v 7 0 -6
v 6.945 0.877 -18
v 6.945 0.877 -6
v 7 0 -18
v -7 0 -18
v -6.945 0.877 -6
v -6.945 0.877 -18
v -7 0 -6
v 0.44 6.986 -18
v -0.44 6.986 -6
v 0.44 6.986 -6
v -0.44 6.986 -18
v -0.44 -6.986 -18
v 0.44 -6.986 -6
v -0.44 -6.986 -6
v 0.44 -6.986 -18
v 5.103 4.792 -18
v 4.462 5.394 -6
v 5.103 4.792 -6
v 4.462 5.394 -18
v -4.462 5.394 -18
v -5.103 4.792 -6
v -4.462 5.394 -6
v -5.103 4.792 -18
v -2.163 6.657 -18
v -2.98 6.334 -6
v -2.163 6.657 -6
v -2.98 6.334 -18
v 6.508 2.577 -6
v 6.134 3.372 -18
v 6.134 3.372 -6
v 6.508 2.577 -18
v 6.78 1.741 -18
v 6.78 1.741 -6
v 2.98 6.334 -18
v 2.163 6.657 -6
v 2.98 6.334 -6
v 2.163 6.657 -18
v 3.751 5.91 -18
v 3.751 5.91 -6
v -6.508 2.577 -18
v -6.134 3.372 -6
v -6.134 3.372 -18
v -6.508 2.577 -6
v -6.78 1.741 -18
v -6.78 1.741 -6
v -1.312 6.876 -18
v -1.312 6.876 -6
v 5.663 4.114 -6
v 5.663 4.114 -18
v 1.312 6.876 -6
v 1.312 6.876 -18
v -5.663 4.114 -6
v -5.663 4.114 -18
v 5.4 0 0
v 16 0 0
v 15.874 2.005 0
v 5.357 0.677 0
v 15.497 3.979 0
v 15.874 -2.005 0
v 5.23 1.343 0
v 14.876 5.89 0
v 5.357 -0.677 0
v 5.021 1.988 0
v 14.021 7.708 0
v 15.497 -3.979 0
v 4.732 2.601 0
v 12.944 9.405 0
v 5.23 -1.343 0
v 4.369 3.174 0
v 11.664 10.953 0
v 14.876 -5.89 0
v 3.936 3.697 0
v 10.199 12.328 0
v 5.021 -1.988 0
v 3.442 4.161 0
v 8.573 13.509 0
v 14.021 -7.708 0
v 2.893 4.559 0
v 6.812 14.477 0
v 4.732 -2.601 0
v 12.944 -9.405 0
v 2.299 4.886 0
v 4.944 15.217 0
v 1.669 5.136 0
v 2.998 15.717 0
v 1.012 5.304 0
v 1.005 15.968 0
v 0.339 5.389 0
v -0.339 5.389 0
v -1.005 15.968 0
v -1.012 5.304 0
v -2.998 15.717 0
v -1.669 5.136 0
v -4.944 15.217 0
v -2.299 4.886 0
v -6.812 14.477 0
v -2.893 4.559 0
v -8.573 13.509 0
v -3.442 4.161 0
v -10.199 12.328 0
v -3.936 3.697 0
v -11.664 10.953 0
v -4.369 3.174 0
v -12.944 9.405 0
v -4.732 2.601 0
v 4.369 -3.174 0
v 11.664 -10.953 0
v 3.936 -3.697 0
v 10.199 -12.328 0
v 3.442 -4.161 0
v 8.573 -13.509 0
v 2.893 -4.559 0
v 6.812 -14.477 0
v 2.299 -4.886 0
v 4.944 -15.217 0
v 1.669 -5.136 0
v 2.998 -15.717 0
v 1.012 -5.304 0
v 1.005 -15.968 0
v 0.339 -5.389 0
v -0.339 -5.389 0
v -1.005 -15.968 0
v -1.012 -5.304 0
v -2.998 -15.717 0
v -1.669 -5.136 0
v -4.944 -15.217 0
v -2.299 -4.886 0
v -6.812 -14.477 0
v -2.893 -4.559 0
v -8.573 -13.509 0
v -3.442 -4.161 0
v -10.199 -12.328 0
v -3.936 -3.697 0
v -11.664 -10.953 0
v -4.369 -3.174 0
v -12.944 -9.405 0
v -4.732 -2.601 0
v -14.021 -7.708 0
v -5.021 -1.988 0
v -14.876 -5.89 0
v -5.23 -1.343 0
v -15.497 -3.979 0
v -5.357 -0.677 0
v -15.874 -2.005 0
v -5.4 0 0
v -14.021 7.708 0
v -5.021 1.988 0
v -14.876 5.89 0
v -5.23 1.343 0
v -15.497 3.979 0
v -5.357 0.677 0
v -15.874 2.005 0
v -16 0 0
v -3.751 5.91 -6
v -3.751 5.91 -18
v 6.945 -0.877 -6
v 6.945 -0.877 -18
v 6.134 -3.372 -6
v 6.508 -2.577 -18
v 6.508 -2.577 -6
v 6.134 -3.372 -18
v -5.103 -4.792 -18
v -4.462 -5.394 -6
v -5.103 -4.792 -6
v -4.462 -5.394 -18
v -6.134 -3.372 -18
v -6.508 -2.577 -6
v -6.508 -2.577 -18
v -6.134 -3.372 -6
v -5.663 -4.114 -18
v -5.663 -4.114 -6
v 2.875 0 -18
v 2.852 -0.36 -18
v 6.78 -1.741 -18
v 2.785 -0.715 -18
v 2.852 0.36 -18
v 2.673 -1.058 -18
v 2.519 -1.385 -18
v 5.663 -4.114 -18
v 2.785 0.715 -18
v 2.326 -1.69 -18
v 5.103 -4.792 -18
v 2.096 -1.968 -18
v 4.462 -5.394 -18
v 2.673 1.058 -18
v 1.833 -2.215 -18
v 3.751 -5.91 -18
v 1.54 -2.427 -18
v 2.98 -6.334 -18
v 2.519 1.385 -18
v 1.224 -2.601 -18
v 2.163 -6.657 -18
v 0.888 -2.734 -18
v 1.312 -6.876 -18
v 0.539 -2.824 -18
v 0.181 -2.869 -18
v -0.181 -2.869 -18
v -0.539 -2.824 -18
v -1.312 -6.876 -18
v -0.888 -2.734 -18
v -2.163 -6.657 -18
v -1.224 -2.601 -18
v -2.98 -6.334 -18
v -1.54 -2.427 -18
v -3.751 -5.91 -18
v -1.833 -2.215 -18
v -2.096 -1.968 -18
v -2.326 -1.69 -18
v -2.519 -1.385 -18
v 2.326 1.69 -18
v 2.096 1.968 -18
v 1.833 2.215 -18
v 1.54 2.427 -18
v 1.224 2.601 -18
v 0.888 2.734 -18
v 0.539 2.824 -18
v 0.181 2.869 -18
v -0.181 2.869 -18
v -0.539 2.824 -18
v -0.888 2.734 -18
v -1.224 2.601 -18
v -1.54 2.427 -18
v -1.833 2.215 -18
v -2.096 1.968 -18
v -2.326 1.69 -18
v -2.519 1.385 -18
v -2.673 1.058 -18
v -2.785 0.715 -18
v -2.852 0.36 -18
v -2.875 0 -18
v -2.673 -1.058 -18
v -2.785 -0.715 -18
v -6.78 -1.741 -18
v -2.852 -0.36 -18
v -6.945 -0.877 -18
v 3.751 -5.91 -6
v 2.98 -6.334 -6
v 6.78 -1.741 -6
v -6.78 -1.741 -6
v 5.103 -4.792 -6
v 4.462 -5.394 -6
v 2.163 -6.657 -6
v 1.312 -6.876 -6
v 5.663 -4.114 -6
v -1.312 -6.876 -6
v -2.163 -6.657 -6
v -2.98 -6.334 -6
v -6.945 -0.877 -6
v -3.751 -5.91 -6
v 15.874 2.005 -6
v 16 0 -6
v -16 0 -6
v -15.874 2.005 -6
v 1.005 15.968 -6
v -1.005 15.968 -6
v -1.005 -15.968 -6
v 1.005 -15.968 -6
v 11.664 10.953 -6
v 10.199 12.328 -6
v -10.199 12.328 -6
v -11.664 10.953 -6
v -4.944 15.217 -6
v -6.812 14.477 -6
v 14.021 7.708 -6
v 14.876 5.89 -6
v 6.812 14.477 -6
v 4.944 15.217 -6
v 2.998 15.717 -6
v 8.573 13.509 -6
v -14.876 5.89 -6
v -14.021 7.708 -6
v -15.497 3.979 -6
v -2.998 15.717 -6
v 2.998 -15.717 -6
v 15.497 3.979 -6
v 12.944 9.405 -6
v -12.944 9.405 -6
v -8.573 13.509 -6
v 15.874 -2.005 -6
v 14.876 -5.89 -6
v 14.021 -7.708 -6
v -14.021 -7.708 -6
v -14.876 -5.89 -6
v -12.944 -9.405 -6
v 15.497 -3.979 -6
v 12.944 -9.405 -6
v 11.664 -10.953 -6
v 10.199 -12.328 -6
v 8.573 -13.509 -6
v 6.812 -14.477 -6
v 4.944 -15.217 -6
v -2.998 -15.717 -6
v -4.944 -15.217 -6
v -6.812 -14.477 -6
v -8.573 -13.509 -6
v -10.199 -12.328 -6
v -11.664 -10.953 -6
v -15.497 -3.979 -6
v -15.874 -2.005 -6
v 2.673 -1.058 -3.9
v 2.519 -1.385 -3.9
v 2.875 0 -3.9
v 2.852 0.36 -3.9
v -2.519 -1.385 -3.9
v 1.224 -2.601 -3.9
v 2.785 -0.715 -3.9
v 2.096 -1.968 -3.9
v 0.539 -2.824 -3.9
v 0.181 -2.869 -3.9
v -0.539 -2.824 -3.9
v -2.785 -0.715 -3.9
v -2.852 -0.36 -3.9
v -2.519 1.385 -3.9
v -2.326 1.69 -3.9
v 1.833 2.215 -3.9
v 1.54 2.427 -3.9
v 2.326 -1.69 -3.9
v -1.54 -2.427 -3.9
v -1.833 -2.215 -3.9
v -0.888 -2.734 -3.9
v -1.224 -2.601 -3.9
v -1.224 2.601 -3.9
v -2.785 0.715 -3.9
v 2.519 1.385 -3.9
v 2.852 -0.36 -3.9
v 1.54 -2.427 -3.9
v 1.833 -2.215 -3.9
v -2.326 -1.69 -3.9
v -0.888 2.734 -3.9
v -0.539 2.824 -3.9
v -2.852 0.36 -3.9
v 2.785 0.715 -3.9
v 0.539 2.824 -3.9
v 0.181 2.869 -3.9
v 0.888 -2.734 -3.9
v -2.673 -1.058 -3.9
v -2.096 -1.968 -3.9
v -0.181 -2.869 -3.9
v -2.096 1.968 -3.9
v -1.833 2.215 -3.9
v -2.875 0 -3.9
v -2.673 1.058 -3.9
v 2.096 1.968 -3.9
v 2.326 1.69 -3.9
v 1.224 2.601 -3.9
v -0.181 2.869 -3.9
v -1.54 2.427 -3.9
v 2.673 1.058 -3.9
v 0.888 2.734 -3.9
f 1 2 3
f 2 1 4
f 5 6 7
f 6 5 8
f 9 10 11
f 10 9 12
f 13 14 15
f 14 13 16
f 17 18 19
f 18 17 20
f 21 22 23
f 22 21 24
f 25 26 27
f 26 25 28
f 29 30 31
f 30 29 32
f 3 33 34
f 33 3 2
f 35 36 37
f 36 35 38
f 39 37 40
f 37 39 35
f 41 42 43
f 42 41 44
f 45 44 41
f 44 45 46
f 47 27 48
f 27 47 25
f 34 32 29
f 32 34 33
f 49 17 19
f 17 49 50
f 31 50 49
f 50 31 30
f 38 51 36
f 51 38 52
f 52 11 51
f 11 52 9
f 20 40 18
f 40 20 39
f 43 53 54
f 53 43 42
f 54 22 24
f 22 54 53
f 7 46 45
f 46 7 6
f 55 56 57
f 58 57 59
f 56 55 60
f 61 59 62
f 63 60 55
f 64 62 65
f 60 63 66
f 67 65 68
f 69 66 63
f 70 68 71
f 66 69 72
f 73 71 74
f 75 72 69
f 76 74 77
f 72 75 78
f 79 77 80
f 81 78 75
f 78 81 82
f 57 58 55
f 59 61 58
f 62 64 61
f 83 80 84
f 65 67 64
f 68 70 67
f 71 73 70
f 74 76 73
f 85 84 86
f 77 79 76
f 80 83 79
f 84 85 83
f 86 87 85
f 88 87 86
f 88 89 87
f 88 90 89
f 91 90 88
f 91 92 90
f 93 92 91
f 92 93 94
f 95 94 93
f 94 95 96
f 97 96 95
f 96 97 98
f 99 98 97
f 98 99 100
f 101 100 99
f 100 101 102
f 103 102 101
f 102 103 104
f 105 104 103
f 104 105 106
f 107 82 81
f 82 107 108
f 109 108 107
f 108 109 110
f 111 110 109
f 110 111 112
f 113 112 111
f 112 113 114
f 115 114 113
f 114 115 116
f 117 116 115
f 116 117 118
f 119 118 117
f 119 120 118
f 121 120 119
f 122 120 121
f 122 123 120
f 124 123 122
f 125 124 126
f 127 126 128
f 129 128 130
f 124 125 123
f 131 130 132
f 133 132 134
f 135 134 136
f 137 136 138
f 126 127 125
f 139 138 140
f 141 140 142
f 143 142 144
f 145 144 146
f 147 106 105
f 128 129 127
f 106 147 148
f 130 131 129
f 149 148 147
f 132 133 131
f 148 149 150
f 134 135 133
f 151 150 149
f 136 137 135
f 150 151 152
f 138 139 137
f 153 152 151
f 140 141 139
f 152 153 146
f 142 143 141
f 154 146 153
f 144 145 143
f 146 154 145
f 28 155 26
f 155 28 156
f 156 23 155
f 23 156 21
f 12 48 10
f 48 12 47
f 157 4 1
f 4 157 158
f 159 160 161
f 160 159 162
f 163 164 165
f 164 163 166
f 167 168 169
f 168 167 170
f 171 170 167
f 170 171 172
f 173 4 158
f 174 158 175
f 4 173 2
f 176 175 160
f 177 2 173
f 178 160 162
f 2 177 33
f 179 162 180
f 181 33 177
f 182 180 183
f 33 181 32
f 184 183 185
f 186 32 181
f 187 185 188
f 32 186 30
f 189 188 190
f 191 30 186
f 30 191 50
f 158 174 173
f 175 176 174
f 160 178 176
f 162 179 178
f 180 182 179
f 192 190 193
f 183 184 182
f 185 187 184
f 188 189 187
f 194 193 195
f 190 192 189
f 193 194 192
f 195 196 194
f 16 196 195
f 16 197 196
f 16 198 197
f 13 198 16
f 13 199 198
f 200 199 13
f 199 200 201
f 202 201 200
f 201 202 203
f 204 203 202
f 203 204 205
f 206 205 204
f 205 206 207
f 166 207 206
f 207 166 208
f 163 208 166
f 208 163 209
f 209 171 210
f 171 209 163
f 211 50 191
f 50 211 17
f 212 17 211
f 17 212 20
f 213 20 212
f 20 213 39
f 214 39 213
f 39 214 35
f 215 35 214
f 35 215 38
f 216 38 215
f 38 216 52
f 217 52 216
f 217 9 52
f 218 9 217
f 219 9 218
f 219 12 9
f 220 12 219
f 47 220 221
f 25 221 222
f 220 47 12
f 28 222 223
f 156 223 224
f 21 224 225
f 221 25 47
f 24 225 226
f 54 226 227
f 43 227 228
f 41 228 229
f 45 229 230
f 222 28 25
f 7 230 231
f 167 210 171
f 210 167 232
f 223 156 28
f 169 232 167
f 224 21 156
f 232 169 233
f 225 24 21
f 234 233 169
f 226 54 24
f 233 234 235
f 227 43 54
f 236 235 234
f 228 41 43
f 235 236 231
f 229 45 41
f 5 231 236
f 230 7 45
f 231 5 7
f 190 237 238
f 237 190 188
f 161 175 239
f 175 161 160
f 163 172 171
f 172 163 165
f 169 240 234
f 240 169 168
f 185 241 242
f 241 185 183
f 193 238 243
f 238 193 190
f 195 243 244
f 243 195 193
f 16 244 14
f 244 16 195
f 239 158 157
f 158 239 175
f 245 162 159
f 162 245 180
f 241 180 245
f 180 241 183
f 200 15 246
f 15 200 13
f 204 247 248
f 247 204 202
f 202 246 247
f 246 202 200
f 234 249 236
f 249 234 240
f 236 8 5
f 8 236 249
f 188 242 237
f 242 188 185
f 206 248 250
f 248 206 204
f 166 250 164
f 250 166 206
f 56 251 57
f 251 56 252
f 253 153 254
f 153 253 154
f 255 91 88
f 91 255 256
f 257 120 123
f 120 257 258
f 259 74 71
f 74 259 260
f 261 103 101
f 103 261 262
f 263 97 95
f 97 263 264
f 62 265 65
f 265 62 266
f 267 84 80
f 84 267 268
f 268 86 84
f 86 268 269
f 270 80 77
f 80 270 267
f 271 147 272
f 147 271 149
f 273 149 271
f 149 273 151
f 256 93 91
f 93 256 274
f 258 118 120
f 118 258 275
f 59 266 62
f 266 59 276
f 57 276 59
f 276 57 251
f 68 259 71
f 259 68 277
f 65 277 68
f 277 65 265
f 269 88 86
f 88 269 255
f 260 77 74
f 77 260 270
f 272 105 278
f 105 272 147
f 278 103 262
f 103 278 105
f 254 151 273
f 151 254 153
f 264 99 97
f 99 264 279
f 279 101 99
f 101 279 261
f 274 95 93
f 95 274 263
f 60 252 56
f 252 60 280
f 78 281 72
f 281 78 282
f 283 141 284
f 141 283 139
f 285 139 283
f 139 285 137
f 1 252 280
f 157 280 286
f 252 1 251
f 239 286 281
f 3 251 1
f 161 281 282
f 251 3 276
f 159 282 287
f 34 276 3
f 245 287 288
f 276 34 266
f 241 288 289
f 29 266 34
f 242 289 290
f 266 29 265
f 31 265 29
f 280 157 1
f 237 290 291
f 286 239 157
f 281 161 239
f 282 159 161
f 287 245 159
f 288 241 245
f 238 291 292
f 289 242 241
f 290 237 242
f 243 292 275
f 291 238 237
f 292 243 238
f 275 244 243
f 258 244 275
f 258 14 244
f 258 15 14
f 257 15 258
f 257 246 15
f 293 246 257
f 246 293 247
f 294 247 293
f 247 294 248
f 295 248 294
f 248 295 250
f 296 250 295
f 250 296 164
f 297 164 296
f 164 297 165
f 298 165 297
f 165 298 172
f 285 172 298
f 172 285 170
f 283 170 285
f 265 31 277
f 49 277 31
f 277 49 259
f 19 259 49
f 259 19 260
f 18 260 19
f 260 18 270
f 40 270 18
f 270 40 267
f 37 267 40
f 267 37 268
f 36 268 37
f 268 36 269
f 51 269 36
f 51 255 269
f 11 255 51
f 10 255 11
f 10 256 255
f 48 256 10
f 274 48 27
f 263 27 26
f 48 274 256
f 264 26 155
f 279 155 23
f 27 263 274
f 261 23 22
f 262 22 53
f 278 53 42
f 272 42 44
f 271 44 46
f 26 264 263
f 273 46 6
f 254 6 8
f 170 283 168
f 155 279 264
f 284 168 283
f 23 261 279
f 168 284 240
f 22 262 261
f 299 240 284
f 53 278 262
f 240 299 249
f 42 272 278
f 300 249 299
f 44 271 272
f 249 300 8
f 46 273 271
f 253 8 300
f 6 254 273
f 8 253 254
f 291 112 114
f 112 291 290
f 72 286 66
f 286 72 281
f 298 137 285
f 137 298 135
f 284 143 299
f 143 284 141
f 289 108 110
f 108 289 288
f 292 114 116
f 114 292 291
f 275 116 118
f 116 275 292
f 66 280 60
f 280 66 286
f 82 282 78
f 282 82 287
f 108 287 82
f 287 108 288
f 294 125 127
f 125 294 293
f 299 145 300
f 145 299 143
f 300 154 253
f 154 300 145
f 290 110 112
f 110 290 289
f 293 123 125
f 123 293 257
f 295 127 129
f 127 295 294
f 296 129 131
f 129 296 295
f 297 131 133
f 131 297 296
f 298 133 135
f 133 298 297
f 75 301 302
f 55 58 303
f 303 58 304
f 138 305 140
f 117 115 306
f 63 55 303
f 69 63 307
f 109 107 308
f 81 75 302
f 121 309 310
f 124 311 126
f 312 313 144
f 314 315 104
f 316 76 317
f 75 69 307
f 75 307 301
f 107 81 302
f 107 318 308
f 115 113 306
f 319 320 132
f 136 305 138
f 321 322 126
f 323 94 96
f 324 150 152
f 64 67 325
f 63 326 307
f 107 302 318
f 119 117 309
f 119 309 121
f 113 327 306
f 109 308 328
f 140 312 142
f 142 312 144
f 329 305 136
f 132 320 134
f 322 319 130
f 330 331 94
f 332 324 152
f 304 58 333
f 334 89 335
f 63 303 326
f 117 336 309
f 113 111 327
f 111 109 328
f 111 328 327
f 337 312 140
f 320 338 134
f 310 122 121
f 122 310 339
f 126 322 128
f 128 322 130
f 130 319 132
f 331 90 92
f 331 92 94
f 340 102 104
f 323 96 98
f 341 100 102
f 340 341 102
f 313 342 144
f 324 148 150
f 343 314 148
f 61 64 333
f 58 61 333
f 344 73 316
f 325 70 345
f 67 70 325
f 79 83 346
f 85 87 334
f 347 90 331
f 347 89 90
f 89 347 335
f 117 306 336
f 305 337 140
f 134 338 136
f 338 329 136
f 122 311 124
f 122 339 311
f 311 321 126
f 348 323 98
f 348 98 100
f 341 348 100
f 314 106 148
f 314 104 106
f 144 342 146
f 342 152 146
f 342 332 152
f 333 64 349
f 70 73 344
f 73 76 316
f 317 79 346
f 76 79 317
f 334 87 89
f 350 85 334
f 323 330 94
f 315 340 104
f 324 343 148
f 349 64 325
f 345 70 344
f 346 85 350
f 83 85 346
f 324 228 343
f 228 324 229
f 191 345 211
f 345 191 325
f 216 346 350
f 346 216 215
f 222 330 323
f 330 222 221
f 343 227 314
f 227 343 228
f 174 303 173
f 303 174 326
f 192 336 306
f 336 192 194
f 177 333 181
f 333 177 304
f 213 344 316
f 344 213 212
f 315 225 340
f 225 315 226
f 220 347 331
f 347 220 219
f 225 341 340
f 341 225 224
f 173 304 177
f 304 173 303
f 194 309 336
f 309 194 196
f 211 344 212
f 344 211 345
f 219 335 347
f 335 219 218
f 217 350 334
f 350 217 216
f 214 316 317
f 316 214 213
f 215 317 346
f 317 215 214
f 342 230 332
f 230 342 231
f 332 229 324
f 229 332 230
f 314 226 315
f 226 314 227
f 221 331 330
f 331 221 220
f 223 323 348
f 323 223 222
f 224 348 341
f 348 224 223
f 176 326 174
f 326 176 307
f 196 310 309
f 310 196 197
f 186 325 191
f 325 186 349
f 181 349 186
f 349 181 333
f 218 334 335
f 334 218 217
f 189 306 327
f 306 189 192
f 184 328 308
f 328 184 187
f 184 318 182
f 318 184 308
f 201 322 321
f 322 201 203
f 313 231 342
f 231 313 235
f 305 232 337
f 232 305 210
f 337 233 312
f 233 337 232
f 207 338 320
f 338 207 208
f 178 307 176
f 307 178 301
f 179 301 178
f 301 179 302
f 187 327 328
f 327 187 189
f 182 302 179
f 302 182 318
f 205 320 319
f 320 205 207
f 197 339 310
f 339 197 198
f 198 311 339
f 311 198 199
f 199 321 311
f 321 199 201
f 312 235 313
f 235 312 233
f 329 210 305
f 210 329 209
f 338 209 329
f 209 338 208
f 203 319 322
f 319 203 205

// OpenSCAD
$fn = 50;


difference() {
	union() {
		translate(v = [0, 0, -18.0000000000]) {
			cylinder(h = 18, r = 7.0000000000);
		}
		translate(v = [0, 0, -6.0000000000]) {
			cylinder(h = 6, r = 16.0000000000);
		}
	}
	union() {
		translate(v = [0, 0, 0]) {
			rotate(a = [0, 0, 0]) {
				difference() {
					union() {
						#translate(v = [0, 0, -18.0000000000]) {
							cylinder(h = 18, r = 2.6000000000);
						}
						#translate(v = [0, 0, -3.9000000000]) {
							cylinder(h = 3.9000000000, r1 = 2.8750000000, r2 = 5.4000000000);
						}
						#translate(v = [0, 0, -18.0000000000]) {
							cylinder(h = 18, r = 2.8750000000);
						}
						#translate(v = [0, 0, -18.0000000000]) {
							cylinder(h = 18, r = 2.6000000000);
						}
					}
					union();
				}
			}
		}
	}
}
